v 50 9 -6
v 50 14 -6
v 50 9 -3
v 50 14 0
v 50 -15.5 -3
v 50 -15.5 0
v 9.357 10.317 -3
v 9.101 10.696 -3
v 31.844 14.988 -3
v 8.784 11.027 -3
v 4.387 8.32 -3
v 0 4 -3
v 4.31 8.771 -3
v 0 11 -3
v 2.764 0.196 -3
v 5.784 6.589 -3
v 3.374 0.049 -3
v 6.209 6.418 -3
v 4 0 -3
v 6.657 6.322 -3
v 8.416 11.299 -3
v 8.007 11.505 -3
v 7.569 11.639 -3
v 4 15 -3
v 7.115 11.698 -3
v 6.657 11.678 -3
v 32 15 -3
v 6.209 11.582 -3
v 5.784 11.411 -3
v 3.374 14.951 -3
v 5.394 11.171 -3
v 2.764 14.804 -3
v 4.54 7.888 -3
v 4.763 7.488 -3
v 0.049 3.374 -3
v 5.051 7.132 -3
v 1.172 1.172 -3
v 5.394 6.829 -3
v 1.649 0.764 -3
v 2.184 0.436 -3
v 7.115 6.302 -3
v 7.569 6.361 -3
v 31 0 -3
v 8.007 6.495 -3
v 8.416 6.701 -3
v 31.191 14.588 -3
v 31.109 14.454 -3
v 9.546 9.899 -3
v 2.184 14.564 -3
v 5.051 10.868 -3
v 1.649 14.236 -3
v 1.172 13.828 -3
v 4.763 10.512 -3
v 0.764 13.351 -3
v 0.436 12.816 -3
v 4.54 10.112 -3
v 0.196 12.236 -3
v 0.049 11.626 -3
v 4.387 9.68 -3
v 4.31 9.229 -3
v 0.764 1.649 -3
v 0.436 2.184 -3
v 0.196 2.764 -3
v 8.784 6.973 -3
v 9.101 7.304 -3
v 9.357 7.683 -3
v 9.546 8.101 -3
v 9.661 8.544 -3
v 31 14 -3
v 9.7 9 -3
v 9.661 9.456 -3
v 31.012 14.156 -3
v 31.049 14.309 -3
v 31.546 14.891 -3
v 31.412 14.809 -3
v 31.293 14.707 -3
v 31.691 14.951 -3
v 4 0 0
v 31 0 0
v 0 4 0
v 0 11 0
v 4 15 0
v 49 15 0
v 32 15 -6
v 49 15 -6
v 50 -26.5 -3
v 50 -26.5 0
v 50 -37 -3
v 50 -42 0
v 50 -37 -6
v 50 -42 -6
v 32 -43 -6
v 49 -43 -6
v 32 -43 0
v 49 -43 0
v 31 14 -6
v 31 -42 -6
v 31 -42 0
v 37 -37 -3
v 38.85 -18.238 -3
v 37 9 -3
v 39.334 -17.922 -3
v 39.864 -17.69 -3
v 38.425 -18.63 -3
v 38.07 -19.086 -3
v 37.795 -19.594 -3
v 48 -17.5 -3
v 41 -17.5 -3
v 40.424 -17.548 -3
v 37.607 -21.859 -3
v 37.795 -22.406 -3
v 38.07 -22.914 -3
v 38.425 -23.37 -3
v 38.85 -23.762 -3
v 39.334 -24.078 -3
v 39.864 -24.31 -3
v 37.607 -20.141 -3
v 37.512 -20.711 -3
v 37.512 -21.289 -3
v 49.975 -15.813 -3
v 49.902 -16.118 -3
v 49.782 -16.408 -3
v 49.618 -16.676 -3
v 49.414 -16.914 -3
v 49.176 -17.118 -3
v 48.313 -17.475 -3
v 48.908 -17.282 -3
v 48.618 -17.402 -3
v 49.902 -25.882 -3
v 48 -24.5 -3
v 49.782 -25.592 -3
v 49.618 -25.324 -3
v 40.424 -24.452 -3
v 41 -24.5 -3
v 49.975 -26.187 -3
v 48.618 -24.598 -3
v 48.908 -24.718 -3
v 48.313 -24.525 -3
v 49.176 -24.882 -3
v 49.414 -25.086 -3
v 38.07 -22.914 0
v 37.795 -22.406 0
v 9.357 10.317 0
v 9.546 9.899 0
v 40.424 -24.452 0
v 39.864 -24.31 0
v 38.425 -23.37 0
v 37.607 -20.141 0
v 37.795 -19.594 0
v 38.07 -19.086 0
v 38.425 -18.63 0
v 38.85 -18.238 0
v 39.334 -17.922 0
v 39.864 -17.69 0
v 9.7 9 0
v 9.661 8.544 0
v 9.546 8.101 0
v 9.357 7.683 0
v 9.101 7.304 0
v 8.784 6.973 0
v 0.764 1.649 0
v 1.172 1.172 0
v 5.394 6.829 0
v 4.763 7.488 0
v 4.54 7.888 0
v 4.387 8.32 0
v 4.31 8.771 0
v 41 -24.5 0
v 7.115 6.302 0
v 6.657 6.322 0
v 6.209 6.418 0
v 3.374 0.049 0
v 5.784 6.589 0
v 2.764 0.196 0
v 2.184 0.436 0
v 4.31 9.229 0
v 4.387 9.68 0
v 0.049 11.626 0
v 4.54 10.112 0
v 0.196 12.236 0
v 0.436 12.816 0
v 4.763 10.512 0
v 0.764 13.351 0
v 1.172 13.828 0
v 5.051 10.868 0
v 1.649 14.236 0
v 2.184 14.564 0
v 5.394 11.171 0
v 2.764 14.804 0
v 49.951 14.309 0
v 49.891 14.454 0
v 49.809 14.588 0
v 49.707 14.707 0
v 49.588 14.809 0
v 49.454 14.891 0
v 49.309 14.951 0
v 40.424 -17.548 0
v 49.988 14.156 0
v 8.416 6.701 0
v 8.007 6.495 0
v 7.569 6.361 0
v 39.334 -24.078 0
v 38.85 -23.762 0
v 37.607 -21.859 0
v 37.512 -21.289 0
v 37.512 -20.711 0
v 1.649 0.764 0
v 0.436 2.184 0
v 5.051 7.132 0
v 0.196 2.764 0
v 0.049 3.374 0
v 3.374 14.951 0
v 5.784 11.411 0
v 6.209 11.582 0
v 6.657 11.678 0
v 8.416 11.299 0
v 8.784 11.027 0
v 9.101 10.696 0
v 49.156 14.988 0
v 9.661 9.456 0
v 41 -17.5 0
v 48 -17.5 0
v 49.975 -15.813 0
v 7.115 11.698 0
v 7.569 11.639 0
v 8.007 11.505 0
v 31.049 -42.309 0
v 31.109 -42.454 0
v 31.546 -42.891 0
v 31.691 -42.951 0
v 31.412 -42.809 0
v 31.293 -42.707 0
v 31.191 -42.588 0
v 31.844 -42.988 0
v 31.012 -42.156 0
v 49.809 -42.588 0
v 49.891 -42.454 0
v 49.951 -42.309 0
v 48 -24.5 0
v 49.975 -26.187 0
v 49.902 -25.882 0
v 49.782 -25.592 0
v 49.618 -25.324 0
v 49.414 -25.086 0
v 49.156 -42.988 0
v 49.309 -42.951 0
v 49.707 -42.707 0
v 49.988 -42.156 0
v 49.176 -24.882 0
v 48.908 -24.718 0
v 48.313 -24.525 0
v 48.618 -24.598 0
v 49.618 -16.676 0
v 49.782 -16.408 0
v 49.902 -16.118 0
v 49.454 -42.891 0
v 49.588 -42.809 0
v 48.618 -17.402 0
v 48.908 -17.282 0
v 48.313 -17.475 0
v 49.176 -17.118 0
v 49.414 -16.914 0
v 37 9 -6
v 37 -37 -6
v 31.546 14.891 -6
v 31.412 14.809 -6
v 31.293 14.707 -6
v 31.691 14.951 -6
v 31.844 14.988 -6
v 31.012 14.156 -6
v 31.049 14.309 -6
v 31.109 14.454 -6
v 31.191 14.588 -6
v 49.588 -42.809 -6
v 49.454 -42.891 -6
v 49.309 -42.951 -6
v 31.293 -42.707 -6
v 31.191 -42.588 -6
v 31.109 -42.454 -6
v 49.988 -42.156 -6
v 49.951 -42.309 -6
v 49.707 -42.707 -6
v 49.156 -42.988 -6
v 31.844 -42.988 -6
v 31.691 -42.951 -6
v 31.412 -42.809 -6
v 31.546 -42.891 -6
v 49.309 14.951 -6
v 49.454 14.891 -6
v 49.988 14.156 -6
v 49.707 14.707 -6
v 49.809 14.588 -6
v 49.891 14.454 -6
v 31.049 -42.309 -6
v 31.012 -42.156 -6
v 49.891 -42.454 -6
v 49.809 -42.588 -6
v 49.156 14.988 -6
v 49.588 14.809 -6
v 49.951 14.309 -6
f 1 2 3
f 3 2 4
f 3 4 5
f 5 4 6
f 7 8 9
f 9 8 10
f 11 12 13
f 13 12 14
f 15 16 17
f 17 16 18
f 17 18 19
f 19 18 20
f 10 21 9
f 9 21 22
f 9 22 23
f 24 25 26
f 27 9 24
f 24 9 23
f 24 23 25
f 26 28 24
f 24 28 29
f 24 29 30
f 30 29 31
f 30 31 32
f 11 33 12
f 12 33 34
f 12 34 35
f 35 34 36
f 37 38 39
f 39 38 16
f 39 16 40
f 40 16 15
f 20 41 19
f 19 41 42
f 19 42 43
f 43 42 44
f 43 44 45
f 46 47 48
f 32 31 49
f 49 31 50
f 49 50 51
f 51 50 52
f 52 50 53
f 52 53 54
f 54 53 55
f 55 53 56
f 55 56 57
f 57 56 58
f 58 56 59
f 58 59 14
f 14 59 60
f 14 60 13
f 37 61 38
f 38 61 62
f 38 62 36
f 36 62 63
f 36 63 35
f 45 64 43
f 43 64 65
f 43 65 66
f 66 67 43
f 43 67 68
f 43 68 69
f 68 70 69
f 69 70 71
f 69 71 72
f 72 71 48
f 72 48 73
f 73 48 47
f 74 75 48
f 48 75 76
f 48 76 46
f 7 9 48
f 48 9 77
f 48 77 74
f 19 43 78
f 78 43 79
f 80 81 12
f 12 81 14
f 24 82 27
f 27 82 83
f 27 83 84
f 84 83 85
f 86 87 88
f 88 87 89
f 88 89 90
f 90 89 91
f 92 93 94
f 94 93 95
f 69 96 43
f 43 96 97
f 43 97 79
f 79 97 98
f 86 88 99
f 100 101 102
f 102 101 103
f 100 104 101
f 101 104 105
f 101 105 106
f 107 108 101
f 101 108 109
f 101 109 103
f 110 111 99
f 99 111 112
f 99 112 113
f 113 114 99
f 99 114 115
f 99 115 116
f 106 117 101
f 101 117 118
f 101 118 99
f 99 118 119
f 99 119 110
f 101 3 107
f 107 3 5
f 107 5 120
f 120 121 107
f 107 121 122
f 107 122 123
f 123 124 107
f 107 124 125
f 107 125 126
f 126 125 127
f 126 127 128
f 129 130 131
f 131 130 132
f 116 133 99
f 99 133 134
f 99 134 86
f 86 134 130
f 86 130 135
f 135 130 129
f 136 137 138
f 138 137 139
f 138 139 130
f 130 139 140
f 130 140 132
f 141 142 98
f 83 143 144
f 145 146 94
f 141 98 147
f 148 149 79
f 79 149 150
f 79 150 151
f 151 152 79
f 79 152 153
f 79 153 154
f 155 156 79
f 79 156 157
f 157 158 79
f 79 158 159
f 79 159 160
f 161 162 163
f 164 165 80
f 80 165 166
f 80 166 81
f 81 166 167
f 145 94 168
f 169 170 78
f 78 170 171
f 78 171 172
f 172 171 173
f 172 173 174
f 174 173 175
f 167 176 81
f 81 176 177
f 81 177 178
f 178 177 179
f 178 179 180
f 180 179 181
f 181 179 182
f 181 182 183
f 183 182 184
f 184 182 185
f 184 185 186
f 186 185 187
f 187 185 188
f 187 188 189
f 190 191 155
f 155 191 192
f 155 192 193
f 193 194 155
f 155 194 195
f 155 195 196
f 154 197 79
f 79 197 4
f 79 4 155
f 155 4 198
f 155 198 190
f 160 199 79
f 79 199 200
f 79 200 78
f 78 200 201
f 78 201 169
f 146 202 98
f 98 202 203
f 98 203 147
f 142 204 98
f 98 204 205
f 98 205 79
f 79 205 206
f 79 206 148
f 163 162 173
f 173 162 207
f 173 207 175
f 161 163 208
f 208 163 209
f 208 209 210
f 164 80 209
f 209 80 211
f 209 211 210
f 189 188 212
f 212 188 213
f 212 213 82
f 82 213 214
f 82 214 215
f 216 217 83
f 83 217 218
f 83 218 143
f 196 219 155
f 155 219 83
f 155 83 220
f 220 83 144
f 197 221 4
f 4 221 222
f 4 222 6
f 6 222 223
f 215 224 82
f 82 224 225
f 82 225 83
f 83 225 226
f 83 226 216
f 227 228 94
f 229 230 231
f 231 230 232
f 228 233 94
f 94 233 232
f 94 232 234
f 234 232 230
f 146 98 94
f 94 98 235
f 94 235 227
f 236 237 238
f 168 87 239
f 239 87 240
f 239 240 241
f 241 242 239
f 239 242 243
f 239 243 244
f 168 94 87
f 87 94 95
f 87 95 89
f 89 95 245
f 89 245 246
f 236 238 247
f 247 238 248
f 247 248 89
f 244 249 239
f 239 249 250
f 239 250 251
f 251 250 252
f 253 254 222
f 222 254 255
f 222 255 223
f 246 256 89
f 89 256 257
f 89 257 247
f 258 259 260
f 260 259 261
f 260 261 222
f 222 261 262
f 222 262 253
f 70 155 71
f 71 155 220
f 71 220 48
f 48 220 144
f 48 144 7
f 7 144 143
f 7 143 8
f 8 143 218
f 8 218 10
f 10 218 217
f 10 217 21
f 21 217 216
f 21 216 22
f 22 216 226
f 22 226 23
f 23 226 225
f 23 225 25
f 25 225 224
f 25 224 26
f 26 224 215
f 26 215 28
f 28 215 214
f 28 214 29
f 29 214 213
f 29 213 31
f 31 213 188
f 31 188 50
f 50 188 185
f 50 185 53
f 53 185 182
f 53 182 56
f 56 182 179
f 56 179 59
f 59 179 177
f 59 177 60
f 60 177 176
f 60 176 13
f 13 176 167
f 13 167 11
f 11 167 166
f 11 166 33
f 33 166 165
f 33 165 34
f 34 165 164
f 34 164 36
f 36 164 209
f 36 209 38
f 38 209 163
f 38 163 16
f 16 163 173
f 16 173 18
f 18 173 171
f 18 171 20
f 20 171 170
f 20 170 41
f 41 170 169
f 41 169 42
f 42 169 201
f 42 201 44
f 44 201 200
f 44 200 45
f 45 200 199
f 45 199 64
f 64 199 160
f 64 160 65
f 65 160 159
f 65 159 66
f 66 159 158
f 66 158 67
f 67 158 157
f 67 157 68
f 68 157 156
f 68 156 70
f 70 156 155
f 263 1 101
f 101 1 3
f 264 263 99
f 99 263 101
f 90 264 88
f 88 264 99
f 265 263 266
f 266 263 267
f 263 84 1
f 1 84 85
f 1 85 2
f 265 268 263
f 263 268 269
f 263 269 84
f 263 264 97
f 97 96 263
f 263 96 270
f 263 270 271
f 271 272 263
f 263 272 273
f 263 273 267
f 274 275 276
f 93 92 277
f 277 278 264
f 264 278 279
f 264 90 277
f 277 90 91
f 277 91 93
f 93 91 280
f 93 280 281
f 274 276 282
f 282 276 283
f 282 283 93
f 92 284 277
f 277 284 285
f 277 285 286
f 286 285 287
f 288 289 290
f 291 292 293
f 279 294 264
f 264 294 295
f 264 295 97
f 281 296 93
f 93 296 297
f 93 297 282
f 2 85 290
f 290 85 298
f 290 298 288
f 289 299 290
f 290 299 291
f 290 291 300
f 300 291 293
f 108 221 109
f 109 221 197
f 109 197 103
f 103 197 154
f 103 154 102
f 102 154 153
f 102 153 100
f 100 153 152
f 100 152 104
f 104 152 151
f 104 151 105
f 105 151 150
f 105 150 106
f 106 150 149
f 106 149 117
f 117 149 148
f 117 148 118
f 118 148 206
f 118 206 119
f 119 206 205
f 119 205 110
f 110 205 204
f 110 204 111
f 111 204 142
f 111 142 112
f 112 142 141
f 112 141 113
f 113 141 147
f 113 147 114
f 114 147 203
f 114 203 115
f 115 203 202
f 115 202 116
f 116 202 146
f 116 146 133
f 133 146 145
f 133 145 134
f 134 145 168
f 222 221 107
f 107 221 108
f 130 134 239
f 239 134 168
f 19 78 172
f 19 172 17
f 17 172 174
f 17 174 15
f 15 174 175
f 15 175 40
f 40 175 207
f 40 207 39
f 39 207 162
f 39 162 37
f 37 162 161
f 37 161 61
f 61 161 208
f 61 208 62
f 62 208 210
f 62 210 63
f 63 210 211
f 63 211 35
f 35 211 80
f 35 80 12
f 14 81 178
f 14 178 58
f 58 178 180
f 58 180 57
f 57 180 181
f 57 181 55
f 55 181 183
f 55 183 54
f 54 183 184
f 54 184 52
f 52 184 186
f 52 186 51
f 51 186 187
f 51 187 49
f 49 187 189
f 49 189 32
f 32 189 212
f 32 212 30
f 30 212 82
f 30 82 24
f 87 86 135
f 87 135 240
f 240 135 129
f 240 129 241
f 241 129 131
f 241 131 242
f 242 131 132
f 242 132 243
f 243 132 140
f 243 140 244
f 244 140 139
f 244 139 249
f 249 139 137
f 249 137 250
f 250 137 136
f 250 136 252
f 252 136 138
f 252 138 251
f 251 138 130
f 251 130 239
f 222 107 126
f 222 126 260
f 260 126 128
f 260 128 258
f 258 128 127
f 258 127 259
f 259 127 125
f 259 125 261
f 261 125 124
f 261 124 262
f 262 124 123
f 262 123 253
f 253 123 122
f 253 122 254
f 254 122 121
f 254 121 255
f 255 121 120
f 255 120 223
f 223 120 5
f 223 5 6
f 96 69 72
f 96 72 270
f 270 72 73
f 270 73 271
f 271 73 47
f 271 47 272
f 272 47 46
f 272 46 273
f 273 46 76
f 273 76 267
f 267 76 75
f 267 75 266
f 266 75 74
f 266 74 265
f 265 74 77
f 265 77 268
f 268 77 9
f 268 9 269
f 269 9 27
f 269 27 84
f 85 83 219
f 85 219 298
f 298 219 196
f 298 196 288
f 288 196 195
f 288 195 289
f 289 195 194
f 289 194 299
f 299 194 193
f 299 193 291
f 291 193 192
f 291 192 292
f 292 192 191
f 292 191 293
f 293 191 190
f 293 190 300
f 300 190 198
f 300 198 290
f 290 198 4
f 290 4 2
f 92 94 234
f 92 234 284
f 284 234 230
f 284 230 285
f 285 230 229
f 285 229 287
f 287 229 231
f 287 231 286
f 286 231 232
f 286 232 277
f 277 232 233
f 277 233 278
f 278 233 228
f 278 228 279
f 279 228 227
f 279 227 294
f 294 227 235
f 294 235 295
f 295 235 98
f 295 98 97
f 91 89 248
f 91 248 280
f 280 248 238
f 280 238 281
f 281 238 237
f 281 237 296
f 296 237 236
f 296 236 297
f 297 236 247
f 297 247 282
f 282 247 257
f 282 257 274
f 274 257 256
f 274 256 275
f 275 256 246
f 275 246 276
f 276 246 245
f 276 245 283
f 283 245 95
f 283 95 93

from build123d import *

# Parameters (mm, degrees)
SKETCH1_R           = 2.7
BOSS_EXTRUDE1_DEPTH = 3
BOSS_EXTRUDE2_DEPTH = 3
CUT_EXTRUDE1_DEPTH  = 3
FILLET1_R           = 4
FILLET2_R           = 2
FILLET3_R           = 1


with BuildPart() as part:
    # Sketch1 → Boss-Extrude1 (new body)
    with BuildSketch(Plane.XY):
        Polygon((0, 0), (0, 15), (50, 15), (50, -43), (31, -43), (31, 0), align=None)
        with Locations((7, 9)):
            Circle(SKETCH1_R, mode=Mode.SUBTRACT)
    extrude(amount=-BOSS_EXTRUDE1_DEPTH)

    # Sketch2 → Boss-Extrude2 (add)
    with BuildSketch(Plane(origin=(0, 0, -3), x_dir=(-1, 0, 0), z_dir=(0, 0, -1))):
        Polygon((-50, 15), (-50, 9), (-37, 9), (-37, -37), (-50, -37), (-50, -43), (-31, -43), (-31, 15), align=None)
    extrude(amount=BOSS_EXTRUDE2_DEPTH)

    # Sketch3 → Cut-Extrude1 (cut)
    with BuildSketch(Plane.XY):
        with BuildLine():
            Line((41, -17.5), (50, -17.5))
            Line((50, -17.5), (50, -24.5))
            Line((50, -24.5), (41, -24.5))
            ThreePointArc((41, -24.5), (37.5, -21), (41, -17.5))
        make_face()
    extrude(amount=-CUT_EXTRUDE1_DEPTH, mode=Mode.SUBTRACT)

    # Fillet1
    fillet1_edges = [part.edges().sort_by_distance(p)[0] for p in [
        (0, 0, -1.5),
        (0, 15, -1.5),
    ]]
    fillet(fillet1_edges, radius=FILLET1_R)

    # Fillet2
    fillet2_edges = [part.edges().sort_by_distance(p)[0] for p in [
        (50, -17.5, -1.5),
        (50, -24.5, -1.5),
    ]]
    fillet(fillet2_edges, radius=FILLET2_R)

    # Fillet3
    fillet3_edges = [part.edges().sort_by_distance(p)[0] for p in [
        (50, 15, -3),
        (50, -43, -3),
        (31, -43, -3),
        (31, 15, -4.5),
    ]]
    fillet(fillet3_edges, radius=FILLET3_R)


solid = part.part
